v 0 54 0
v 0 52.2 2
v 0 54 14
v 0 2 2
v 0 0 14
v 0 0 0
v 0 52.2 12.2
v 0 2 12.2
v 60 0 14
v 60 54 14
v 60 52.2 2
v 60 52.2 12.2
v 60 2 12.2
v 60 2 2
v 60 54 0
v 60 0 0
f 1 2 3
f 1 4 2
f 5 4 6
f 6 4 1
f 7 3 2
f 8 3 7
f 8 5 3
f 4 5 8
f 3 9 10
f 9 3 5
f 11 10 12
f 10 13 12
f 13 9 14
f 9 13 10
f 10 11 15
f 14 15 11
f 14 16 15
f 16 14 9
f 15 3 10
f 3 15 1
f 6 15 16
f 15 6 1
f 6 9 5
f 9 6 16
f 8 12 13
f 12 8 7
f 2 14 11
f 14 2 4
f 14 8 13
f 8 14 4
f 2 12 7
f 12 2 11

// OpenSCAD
difference(){
    cube([60,54,14]);
    translate([-5,2,2]){
        cube([100,50.2,10.2]);
    }
}
